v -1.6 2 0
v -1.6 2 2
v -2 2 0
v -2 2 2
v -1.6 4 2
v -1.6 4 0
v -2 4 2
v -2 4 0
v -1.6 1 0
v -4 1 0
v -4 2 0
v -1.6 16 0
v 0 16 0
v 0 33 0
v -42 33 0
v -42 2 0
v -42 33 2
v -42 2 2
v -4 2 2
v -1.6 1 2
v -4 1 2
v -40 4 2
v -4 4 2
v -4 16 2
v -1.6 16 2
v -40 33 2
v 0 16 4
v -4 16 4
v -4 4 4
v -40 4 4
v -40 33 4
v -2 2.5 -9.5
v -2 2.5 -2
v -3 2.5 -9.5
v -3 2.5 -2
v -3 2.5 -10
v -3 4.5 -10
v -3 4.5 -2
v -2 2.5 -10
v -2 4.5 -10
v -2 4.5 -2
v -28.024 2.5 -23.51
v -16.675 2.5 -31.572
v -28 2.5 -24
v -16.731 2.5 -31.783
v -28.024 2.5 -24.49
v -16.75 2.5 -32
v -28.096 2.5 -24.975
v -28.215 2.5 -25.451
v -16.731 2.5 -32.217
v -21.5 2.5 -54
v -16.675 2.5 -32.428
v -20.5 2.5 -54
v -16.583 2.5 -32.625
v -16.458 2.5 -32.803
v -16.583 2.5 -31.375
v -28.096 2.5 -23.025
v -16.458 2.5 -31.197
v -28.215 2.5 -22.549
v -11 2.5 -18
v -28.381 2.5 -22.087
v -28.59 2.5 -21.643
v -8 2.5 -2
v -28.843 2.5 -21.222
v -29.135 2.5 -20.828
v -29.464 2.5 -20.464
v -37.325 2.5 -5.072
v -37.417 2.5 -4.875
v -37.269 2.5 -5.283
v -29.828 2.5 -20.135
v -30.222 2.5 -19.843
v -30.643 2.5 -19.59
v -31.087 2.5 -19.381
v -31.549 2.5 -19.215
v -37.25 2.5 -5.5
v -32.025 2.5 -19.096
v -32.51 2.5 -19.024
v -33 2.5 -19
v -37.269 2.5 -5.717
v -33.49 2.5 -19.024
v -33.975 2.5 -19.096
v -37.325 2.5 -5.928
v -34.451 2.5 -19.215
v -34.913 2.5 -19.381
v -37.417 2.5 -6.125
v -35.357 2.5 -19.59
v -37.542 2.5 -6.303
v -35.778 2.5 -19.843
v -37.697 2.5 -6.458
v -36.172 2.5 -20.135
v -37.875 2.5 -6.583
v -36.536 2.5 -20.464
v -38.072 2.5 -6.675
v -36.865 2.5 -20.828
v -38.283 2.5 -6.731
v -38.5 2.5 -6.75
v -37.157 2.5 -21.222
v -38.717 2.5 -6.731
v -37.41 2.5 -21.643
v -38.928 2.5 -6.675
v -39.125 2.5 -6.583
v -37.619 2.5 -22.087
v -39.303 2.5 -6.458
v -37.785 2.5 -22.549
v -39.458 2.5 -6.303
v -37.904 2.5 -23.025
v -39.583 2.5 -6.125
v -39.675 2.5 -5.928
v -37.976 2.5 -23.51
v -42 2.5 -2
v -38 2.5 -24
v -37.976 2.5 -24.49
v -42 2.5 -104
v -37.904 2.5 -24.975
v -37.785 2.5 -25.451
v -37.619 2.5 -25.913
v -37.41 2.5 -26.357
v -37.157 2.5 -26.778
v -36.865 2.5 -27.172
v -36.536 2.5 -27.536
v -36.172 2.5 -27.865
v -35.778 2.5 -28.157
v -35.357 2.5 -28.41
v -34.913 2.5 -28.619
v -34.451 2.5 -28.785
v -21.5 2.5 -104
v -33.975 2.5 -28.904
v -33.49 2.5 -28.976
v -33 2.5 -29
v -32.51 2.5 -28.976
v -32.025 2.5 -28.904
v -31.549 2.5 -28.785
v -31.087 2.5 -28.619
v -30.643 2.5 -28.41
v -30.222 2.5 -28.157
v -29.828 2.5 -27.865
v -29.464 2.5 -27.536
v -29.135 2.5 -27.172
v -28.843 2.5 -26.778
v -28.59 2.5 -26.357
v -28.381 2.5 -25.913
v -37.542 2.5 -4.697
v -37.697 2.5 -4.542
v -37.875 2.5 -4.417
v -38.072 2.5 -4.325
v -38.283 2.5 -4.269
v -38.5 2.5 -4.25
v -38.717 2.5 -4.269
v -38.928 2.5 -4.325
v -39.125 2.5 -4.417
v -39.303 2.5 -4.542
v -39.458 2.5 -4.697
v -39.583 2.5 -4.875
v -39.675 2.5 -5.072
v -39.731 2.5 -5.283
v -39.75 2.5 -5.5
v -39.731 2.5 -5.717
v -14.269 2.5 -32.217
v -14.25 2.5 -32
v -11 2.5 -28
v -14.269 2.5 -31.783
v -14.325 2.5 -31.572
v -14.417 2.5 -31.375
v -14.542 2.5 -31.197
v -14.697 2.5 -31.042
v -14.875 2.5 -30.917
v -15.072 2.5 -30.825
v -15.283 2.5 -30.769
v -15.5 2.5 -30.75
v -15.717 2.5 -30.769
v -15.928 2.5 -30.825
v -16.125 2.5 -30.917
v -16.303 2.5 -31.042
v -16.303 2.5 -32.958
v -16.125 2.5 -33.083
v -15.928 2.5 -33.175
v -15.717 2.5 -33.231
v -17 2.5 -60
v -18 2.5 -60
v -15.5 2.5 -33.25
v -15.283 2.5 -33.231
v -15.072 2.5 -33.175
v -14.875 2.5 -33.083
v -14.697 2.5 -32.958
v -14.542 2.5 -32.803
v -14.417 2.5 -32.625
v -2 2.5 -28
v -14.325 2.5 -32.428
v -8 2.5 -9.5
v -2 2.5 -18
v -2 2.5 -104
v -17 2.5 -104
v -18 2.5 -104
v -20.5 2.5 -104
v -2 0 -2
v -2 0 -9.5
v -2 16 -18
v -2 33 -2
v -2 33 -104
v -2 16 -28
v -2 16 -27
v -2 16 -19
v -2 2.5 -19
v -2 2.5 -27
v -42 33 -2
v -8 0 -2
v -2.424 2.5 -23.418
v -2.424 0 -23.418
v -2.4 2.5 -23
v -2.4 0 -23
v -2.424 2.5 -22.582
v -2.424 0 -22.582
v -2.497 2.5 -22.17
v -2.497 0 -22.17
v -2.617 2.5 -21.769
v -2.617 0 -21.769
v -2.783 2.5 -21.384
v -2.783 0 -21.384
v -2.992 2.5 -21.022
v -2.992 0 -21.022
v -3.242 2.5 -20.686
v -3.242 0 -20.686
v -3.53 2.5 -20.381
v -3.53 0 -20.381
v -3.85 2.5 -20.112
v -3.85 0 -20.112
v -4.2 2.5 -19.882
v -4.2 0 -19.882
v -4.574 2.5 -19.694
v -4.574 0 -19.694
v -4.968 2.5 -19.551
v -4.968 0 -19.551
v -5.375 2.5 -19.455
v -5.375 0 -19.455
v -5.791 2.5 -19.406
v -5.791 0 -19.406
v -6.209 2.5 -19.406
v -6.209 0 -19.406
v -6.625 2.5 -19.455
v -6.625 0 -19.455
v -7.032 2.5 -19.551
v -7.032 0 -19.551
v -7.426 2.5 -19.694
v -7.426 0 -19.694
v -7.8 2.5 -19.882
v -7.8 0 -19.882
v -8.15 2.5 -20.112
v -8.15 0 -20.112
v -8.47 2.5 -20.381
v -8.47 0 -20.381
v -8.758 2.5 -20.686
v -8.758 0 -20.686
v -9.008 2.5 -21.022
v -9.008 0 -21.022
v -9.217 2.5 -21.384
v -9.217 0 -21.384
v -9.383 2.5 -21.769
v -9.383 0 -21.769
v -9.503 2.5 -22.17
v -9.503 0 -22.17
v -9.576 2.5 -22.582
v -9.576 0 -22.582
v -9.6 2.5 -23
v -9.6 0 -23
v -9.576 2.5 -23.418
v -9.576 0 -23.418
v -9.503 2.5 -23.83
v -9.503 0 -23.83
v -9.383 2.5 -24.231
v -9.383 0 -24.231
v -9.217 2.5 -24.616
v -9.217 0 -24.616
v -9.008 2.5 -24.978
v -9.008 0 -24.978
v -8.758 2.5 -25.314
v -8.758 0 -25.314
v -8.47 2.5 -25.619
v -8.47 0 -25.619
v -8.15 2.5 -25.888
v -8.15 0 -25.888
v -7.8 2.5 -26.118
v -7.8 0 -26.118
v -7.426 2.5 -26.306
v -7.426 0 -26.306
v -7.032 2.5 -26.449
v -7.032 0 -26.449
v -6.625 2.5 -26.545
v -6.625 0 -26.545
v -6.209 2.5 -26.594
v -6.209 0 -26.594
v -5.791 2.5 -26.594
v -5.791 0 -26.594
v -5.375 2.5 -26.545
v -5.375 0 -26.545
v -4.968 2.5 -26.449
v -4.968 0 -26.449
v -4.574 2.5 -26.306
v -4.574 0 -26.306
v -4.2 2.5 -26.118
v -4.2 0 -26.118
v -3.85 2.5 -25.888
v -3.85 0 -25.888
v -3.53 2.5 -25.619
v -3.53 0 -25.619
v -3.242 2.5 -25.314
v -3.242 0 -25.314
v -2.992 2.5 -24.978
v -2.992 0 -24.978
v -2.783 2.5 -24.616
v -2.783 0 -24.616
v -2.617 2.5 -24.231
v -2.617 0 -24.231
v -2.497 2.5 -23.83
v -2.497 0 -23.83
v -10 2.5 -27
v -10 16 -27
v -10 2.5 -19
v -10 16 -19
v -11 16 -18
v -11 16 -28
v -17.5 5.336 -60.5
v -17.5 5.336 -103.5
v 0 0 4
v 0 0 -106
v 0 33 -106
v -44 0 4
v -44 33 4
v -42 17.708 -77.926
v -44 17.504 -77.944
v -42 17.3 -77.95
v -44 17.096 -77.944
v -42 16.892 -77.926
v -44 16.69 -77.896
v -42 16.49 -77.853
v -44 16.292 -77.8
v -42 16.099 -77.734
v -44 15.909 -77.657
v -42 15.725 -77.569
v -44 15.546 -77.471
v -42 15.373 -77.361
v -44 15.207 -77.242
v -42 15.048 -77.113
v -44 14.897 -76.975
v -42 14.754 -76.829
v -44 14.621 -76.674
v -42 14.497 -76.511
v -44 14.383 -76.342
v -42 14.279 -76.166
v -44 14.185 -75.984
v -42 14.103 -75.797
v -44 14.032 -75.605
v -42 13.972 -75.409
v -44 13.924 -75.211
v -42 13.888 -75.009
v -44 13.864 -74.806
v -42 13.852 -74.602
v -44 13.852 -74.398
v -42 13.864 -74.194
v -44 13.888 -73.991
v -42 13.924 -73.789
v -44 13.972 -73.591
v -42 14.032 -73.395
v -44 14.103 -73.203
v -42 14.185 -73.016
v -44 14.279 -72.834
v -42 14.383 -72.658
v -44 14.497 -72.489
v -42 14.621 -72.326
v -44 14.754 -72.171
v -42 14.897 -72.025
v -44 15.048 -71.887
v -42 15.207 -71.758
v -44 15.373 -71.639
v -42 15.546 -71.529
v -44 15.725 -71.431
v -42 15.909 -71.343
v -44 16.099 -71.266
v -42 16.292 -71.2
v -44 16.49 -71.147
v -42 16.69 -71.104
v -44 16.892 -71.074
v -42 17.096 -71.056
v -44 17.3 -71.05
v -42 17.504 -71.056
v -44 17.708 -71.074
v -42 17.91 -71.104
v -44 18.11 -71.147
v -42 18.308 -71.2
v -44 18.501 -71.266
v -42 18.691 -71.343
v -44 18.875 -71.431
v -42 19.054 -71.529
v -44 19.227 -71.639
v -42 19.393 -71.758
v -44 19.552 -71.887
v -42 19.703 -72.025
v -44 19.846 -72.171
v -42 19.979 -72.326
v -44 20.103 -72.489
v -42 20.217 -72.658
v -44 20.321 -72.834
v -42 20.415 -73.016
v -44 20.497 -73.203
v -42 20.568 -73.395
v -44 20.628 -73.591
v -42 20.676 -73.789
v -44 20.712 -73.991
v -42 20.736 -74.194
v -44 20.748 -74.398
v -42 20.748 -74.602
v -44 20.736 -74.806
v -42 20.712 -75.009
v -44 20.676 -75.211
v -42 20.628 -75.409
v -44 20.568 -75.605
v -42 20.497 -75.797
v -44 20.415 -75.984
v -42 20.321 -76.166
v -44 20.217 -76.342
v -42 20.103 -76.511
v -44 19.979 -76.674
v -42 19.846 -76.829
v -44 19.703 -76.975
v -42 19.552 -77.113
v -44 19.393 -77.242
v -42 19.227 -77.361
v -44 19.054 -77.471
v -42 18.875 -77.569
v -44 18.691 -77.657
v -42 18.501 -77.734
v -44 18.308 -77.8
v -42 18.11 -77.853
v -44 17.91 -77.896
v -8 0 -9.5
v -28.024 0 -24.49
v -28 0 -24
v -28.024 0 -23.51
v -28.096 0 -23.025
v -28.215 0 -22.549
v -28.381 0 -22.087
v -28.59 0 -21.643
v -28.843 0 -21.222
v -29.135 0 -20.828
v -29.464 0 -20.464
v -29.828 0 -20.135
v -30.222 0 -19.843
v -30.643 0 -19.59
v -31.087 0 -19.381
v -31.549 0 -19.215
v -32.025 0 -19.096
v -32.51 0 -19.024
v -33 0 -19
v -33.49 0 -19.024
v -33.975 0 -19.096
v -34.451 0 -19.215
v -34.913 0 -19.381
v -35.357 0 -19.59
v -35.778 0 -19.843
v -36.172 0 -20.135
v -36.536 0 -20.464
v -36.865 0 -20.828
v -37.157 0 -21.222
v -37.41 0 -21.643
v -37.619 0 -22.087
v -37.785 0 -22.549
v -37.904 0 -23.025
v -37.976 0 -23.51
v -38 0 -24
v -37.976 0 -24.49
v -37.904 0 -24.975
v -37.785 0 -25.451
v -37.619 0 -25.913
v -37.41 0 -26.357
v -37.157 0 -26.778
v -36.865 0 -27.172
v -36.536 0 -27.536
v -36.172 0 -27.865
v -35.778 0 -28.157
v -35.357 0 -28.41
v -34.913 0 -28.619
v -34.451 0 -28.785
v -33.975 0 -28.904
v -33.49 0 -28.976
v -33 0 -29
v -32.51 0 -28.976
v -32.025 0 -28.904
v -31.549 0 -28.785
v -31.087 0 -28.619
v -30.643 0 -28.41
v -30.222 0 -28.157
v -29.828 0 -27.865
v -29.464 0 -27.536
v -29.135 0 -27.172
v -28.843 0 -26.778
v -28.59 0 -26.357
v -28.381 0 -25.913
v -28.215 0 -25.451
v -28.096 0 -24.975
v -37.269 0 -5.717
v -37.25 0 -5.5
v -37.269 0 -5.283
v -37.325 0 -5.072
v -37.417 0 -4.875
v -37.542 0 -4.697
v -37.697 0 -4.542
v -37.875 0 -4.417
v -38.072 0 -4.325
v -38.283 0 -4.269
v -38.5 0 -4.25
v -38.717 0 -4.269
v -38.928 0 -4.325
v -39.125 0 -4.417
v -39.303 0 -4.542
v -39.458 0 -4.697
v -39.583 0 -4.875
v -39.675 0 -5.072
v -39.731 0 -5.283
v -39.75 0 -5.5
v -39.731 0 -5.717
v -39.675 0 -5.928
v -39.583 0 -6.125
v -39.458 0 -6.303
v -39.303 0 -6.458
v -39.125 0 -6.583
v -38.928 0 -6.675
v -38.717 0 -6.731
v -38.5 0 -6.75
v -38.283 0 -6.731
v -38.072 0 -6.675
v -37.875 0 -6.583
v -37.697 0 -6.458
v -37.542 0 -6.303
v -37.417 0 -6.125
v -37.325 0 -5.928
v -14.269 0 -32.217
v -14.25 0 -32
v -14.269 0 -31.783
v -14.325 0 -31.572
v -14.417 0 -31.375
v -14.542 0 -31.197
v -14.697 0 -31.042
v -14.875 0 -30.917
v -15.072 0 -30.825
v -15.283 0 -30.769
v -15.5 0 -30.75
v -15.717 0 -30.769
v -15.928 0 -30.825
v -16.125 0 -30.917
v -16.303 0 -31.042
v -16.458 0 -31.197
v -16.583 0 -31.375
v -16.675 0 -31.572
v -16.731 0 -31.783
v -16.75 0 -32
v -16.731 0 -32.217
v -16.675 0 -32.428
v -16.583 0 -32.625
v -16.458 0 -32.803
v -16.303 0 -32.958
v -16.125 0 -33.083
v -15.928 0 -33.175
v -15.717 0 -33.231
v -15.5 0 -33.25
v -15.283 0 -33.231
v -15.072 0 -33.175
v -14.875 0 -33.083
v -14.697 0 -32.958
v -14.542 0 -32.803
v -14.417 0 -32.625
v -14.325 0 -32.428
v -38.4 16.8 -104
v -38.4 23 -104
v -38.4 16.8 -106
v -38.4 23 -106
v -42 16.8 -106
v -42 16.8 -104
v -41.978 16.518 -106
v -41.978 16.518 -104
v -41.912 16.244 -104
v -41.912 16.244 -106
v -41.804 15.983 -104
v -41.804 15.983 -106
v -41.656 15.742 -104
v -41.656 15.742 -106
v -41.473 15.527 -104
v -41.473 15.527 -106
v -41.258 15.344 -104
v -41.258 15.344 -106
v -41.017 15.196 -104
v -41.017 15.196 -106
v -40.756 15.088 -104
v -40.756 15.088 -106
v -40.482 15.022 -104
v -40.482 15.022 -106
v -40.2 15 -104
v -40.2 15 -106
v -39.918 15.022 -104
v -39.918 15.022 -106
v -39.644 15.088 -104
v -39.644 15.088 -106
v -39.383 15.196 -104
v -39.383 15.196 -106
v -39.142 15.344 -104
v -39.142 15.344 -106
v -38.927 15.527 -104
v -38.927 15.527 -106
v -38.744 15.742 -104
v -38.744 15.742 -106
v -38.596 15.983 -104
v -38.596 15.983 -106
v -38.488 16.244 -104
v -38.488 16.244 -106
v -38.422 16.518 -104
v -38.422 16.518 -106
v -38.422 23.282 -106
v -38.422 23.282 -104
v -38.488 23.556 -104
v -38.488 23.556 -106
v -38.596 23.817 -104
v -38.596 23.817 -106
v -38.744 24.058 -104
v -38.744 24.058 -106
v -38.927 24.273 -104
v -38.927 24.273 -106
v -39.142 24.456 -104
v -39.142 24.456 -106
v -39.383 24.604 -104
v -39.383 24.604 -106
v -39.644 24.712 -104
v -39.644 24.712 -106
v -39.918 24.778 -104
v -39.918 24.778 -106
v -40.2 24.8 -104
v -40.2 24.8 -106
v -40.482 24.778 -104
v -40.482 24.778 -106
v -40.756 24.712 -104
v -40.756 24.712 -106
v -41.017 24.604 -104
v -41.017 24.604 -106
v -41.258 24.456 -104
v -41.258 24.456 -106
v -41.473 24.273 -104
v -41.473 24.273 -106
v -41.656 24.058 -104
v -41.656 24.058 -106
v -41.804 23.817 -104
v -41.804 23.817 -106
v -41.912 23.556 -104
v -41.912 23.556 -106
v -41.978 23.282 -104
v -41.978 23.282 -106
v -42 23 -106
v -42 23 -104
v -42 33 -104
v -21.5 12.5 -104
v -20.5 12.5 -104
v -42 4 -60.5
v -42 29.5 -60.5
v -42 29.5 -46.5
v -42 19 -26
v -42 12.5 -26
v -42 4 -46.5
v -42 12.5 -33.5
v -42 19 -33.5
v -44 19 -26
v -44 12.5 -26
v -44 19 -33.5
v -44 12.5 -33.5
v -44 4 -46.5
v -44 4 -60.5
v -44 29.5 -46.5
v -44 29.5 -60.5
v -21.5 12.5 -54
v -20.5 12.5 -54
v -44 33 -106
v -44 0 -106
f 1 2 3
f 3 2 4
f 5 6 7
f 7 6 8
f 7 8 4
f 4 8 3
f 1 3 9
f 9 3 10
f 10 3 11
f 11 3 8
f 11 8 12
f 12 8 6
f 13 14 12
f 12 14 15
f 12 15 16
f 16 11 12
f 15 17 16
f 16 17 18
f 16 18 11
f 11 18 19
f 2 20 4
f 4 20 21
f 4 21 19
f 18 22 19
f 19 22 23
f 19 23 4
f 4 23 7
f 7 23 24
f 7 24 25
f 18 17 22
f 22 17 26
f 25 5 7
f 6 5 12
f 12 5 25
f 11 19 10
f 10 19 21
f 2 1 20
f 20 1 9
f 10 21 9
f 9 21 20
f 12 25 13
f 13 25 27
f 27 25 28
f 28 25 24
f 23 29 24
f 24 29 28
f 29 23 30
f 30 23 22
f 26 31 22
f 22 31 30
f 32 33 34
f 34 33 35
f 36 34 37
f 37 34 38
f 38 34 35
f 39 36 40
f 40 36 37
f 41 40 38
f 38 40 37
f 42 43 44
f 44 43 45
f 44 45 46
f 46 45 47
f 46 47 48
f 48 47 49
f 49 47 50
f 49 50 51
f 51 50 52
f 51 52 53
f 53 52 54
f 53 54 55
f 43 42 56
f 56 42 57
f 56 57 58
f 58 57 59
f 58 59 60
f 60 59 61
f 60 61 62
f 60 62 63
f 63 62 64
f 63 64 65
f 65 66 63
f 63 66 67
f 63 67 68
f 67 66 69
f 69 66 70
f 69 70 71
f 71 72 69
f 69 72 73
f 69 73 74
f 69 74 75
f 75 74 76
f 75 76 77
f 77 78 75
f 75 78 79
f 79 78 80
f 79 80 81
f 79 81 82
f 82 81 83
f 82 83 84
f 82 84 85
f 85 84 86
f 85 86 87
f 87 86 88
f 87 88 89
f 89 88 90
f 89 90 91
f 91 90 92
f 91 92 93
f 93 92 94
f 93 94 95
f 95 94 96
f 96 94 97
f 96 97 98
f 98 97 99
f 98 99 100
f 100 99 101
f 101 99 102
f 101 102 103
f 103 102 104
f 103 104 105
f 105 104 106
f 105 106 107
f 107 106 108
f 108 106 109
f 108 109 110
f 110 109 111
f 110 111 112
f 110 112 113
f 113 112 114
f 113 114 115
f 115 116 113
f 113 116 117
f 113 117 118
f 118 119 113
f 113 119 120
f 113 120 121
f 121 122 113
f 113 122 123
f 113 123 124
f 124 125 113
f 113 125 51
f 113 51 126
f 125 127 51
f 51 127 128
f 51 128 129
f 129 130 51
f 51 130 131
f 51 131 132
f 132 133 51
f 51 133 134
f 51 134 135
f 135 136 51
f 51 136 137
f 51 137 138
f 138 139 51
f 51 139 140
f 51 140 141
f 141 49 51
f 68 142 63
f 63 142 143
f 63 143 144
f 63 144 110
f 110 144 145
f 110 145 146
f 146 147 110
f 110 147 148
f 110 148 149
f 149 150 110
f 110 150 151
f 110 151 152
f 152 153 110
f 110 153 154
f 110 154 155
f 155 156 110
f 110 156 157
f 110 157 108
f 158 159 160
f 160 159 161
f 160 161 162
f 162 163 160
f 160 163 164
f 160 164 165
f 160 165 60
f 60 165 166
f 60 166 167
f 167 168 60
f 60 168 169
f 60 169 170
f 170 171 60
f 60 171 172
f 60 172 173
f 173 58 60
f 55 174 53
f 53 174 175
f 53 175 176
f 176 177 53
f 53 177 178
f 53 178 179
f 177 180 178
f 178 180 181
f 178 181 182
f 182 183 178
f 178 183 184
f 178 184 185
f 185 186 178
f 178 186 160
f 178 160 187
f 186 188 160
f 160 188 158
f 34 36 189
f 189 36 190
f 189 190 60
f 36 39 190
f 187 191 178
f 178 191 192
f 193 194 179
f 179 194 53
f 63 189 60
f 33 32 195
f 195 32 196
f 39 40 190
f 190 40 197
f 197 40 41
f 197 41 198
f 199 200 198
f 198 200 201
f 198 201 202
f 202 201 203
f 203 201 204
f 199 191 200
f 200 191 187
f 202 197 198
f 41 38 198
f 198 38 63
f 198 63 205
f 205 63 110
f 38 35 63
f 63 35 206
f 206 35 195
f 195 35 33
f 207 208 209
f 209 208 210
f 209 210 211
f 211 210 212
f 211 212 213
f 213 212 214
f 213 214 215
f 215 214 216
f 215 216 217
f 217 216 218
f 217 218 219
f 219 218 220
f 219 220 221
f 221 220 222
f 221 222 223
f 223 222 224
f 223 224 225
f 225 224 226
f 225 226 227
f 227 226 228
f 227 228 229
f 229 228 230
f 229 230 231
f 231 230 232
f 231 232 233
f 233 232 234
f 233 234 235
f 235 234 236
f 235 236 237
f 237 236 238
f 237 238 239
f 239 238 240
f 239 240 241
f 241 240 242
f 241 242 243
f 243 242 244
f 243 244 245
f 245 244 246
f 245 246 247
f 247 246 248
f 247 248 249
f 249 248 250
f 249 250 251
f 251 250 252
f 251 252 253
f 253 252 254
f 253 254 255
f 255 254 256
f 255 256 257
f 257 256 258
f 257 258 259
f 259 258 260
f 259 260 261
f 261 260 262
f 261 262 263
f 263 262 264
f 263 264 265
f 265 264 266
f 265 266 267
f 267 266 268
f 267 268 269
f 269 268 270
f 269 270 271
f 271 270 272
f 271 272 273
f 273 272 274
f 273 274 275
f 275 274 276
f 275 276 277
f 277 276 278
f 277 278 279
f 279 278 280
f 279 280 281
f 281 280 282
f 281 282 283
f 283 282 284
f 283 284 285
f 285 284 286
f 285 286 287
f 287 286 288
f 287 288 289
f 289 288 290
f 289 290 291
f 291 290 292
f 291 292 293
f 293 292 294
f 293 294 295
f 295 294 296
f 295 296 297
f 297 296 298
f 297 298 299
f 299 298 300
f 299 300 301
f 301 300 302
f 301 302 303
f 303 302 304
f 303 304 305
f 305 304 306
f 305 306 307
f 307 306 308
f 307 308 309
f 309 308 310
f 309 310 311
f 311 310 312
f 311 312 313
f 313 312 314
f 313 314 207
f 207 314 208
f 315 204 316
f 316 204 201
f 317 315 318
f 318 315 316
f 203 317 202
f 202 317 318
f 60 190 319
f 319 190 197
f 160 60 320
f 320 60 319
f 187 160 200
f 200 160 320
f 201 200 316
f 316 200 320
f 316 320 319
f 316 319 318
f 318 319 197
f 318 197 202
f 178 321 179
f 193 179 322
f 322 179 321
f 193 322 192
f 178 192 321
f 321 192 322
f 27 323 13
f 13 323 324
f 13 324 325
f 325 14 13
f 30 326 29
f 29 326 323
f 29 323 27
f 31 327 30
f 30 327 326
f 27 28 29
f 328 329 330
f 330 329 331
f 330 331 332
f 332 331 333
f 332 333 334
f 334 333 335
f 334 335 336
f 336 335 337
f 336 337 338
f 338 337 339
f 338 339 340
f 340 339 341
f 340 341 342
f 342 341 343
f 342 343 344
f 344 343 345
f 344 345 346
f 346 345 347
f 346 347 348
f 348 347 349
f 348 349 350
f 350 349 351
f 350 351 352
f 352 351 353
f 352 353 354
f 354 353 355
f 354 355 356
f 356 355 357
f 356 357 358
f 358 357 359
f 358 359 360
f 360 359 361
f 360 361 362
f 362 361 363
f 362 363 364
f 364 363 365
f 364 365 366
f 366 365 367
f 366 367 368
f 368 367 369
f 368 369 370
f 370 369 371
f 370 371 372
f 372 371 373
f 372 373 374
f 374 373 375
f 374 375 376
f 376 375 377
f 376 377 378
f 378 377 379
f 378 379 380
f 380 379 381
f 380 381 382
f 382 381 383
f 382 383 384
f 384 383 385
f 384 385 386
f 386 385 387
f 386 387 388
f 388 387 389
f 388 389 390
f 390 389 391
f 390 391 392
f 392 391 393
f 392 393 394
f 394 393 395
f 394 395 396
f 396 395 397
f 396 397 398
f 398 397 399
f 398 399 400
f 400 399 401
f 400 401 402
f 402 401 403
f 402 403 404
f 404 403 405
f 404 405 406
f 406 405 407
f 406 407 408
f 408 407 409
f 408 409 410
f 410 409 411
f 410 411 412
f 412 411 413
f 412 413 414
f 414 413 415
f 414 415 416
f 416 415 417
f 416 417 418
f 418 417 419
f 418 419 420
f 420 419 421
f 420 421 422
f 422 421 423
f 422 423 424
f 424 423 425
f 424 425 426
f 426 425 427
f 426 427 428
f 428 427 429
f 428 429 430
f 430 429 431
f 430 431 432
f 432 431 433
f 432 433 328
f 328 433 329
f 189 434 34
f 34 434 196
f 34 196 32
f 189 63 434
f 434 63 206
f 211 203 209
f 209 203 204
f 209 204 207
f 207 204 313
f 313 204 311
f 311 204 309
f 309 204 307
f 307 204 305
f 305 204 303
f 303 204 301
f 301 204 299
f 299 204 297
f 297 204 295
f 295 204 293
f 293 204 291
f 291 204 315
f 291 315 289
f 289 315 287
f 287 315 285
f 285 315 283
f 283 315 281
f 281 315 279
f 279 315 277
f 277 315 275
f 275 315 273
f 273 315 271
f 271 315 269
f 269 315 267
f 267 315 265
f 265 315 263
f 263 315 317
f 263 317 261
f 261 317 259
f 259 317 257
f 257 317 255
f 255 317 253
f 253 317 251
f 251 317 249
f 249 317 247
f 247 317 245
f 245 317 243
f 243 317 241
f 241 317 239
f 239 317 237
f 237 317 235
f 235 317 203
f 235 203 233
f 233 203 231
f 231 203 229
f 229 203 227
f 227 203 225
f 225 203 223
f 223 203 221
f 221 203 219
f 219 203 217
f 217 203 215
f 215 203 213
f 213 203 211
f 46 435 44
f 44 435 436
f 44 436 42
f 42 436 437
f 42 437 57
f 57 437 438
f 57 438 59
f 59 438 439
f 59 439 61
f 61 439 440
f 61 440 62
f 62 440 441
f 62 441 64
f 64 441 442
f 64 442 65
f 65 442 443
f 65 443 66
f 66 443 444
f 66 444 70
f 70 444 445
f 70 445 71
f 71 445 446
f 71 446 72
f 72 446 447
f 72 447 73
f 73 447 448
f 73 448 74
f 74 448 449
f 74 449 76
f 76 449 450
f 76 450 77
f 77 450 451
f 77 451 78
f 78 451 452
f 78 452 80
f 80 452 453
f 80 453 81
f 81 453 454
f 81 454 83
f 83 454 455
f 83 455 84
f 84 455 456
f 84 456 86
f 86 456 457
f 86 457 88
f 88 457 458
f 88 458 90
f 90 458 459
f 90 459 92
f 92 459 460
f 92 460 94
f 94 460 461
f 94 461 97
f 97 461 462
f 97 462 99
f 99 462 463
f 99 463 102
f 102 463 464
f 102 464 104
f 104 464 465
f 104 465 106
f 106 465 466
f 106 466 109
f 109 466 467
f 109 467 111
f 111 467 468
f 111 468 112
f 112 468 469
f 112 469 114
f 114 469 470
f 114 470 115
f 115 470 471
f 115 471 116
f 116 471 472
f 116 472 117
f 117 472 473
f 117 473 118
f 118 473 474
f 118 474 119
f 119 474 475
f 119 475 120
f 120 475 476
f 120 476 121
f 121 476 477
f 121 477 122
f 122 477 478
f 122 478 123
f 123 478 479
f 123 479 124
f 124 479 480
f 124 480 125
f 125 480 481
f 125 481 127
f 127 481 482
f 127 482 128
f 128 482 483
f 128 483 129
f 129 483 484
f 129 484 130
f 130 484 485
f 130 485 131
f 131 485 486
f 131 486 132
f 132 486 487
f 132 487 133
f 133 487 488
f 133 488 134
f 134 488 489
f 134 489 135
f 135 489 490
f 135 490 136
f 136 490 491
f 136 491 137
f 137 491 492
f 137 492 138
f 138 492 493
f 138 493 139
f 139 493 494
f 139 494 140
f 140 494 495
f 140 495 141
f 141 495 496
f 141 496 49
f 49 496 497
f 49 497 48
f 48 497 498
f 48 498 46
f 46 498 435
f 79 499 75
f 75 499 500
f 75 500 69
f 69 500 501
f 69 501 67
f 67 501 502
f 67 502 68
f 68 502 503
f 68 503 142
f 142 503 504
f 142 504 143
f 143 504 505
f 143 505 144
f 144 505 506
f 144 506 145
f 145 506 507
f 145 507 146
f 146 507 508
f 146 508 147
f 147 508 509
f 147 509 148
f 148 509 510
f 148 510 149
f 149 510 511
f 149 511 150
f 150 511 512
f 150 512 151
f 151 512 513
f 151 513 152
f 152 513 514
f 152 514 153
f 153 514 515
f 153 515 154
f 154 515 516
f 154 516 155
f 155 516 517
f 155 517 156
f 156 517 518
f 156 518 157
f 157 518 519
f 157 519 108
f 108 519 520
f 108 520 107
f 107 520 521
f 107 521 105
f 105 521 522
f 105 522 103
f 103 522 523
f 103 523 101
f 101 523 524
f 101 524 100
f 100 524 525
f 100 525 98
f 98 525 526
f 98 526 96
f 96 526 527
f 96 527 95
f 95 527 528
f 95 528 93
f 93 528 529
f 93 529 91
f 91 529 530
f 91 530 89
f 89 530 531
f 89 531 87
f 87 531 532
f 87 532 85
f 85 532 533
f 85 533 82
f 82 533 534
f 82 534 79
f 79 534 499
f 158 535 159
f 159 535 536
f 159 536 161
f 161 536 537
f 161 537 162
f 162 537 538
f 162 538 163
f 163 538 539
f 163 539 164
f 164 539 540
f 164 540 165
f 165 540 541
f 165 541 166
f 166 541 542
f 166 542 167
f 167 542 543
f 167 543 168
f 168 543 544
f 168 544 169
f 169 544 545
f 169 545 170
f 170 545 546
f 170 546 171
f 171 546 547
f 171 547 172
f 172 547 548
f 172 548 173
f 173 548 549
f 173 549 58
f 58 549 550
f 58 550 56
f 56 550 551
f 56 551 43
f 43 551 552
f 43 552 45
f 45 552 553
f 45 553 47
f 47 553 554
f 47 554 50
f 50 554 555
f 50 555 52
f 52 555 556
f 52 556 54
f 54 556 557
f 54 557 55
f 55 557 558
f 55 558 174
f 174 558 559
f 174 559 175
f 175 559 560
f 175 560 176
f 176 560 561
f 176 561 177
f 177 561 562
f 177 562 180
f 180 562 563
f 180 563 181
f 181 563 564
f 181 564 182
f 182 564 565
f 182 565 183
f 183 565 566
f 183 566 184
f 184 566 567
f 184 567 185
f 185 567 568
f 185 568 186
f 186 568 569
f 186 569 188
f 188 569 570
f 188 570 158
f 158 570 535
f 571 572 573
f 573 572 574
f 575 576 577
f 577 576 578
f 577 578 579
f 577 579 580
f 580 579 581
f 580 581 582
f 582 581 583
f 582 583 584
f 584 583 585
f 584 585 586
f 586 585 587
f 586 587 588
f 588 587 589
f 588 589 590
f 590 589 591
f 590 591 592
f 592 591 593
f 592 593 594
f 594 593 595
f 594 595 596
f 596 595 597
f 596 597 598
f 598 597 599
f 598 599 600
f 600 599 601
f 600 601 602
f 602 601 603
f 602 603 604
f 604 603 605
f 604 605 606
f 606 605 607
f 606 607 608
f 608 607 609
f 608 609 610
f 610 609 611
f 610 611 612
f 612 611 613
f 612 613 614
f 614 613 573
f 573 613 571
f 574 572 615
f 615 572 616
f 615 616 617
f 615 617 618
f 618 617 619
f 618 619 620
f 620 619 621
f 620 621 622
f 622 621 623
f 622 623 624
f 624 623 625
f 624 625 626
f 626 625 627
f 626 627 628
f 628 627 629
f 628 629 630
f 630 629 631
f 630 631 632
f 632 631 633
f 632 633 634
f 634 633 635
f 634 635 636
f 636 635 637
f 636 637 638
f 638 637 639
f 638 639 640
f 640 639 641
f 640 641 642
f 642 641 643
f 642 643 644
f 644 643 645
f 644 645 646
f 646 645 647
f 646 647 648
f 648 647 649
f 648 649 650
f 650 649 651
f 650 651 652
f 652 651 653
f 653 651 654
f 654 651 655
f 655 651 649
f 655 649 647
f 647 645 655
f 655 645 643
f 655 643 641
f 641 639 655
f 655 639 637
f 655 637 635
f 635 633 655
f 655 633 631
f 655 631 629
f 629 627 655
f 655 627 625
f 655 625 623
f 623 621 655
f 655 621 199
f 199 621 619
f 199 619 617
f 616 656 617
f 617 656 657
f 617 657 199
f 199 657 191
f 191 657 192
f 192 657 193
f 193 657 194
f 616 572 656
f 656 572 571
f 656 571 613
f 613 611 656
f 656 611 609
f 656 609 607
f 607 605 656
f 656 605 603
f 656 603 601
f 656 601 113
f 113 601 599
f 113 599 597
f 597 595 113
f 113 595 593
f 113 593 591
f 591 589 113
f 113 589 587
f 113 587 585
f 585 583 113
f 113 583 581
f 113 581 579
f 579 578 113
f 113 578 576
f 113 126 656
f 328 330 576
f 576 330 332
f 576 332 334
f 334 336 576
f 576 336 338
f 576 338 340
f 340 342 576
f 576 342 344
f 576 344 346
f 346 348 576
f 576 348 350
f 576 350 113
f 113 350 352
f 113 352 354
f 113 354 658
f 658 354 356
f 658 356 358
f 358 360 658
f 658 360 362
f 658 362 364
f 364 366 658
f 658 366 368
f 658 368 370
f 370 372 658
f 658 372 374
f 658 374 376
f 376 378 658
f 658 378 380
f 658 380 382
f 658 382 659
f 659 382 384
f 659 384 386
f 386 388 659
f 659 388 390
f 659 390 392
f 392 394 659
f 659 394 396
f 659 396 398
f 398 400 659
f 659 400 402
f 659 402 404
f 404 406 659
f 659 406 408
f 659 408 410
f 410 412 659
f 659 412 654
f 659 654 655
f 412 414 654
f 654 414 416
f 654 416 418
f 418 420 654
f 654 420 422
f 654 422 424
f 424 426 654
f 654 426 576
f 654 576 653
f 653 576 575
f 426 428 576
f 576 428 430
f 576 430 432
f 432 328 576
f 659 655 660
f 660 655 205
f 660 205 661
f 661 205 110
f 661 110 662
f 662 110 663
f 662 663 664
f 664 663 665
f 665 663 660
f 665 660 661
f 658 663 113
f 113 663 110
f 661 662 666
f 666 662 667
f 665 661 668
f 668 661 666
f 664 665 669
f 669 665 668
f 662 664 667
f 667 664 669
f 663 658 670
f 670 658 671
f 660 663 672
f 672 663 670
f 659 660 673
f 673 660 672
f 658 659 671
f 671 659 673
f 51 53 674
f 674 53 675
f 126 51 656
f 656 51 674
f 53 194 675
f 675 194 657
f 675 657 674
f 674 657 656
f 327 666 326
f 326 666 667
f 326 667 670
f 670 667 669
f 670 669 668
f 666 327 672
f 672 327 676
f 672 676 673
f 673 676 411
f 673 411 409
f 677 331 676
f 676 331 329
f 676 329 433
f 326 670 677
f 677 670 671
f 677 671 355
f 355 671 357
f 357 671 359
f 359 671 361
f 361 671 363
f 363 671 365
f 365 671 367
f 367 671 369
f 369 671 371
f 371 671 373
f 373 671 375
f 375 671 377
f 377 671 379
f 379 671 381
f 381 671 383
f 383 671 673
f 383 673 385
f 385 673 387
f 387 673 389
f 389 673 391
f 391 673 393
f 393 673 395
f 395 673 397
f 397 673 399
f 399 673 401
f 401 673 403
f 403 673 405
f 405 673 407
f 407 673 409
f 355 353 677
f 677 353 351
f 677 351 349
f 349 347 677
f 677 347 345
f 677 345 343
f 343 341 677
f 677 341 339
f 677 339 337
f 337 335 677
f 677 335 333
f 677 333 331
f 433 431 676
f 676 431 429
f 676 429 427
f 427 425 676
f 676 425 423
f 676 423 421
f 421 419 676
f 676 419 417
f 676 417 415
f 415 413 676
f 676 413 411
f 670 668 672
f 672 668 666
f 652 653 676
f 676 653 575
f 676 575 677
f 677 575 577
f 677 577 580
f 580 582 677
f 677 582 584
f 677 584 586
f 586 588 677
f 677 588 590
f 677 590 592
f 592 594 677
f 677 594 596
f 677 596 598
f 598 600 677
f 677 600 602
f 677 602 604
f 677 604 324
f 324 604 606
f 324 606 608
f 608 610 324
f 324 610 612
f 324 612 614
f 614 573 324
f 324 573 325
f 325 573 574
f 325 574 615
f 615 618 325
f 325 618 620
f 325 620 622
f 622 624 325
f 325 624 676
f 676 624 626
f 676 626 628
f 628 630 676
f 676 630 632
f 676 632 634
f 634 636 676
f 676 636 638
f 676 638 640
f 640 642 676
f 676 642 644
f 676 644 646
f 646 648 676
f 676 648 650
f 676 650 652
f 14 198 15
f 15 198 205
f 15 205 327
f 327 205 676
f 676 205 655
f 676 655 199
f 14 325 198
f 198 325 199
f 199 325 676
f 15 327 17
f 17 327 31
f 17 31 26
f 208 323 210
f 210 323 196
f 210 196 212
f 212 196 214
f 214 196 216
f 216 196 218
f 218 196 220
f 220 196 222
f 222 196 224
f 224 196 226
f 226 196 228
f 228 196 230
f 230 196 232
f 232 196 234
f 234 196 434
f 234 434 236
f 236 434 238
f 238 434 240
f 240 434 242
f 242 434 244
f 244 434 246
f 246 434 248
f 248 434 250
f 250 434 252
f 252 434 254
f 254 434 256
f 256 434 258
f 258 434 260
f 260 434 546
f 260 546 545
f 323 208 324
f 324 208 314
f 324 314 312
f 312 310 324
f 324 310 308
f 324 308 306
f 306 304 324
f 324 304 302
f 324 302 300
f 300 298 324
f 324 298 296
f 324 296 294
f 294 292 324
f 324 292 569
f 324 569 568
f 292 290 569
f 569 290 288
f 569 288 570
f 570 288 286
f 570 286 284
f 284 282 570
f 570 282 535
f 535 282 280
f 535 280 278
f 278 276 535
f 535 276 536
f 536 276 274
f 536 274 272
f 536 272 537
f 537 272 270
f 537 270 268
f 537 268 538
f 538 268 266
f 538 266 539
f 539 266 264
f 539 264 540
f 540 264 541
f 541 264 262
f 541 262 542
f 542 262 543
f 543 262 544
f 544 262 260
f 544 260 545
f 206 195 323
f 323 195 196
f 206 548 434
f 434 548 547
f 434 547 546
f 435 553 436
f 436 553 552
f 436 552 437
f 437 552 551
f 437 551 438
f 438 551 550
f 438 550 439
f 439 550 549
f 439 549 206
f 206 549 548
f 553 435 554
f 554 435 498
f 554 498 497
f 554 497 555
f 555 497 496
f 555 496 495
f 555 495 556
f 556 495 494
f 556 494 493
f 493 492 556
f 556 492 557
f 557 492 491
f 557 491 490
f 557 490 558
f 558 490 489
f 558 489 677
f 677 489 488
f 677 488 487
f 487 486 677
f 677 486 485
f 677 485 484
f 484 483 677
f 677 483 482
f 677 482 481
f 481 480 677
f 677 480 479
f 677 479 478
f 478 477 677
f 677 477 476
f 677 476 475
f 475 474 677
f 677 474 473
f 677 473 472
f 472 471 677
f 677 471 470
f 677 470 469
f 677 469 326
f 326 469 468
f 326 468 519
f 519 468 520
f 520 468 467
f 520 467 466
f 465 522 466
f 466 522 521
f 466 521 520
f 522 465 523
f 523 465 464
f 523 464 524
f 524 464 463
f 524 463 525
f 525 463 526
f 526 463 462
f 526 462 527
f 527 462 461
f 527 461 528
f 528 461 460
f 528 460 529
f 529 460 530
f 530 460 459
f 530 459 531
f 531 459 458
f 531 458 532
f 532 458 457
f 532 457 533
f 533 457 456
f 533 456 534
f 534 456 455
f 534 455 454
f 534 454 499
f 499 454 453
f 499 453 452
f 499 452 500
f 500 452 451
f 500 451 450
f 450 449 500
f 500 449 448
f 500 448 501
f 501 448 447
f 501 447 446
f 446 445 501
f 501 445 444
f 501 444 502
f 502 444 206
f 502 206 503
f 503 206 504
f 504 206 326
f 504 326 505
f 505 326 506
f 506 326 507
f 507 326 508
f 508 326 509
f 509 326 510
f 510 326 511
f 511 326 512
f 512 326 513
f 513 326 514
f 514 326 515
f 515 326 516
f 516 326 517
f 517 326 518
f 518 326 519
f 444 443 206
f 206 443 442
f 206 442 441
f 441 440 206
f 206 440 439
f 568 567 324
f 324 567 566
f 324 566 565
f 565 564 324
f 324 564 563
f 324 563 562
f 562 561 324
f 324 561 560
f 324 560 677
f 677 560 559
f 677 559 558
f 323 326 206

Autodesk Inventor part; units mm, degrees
ref_plane "YZ Plane" through (0, 0, 0) normal (1, 0, 0) x (0, 1, 0)
ref_plane "XZ Plane" through (0, 0, 0) normal (0, 1, 0) x (-1, 0, 0)
ref_plane "XY Plane" through (0, 0, 0) normal (0, 0, 1) x (1, 0, 0)
sketch "внешние размеры" plane through (0, 0, 0) normal (0, 1, 0) x (-1, 0, 0)
  line L0 (0, 0) -> (44, 0)
  line L1 (44, 0) -> (44, -106)
  line L2 (44, -106) -> (0, -106)
  line L3 (0, -106) -> (0, 0)
  dimension "d0" = 44
  dimension "d1" = 106
extrude "Выдавливание1" add sketch "внешние размеры" along normal blind 33
sketch "внутренние размеры" plane through (0, 33, 0) normal (0, 1, 0) x (1, 0, 0)
  line L0 (-42, 2) -> (-2, 2)
  line L1 (-2, 2) -> (-2, 104)
  line L2 (-2, 104) -> (-42, 104)
  line L3 (-42, 104) -> (-42, 2)
  point P0 (0, 0)
extrude "Выдавливание2" cut sketch "внутренние размеры" against normal blind 30.5
sketch "перегородка" plane through (0, 2.5, 0) normal (0, 1, 0) x (1, 0, 0)
  line L0 (-42, 104) -> (-2, 104)
  line L1 (-20.5, 104) -> (-21.5, 104)
  line L2 (-21.5, 104) -> (-21.5, 54)
  line L3 (-21.5, 54) -> (-20.5, 54)
  line L4 (-20.5, 54) -> (-20.5, 104)
  line L5 (-2, 104) -> (-2, 2)
  line L6 (-42, 104) -> (-2, 104)
  point P0 (0, 0)
  point P1 (-22, 104)
  point P2 (-21, 54)
  dimension "d6" = 18.5
  dimension "d7" = 1
  dimension "d8" = 50
extrude "Выдавливание3" add sketch "перегородка" along normal blind 10
sketch "дисплей" plane through (-44, 0, -106) normal (-1, 0, 0) x (0, 0, 1)
  line L0 (45.5, 4) -> (59.5, 4)
  line L1 (59.5, 4) -> (59.5, 29.5)
  line L2 (59.5, 29.5) -> (45.5, 29.5)
  line L3 (45.5, 29.5) -> (45.5, 4)
  line L4 (0, 0) -> (0, 33)
  line L5 (0, 0) -> (106, 0)
  line L6 (0, 33) -> (106, 33)
  point P0 (0, 16.5)
  point P1 (59.5, 16.75)
  dimension "d21" = 25.5
  dimension "d22" = 14
  dimension "d23" = 45.5
  dimension "d24" = 4
  dimension "d25" = 3.5
  dimension "d125" = 59.5
extrude "Выдавливание4" cut sketch "дисплей" against normal blind 2.5
sketch "уф" plane through (-44, 0, -106) normal (-1, 0, 0) x (0, 0, 1)
  line L0 (80, 12.5) -> (72.5, 12.5)
  line L1 (72.5, 12.5) -> (72.5, 19)
  line L2 (72.5, 19) -> (80, 19)
  line L3 (80, 19) -> (80, 12.5)
  line L4 (106, 0) -> (106, 33)
  line L5 (0, 0) -> (106, 0)
  line L6 (0, 33) -> (106, 33)
  line L7 (0, 0) -> (0, 33)
  point P0 (80, 15.75)
  point P1 (72.5, 15.75)
  point P2 (0, 16.5)
  dimension "d28" = 7.5
  dimension "d29" = 6.5
  dimension "d30" = 26
  dimension "d31" = 12.5
  dimension "d32" = 14
  dimension "d126" = 72.5
extrude "Выдавливание5" cut sketch "уф" against normal blind 2.5 contours L0 L1 L2 L3
sketch "usb-c" plane through (0, 0, -106) normal (0, 0, -1) x (-1, 0, 0)
  line L0 (40.2, 24.8) -> (40.2, 15) construction
  line L1 (42, 4) -> (42, 29.5)
  line L2 (42, 23) -> (42, 16.8)
  line L3 (38.4, 16.8) -> (38.4, 23)
  arc A0 (42, 23) -> (38.4, 23) centre (40.2, 23) ccw
  arc A1 (38.4, 16.8) -> (42, 16.8) centre (40.2, 16.8) ccw
  line L4 (44, 0) -> (44, 33)
  line L5 (0, 0) -> (44, 0)
  point P0 (40.2, 19.9)
  point P1 (42, 19.9)
  point P2 (38.4, 19.9)
  point P3 (42, 16.8)
  point P4 (42, 23)
  dimension "d35" = 2
  dimension "d36" = 15
  dimension "d37" = 9.8
  dimension "d38" = 3.6
extrude "Выдавливание6" cut sketch "usb-c" against normal blind 2.5
sketch "stepper уши" plane through (0, 2.5, 0) normal (0, 1, 0) x (1, 0, 0)
  line L0 (-42, 2) -> (-42, 104)
  line L1 (-2, 2) -> (-42, 2)
  point P0 (0, 0)
  point P1 (-38.5, 5.5)
  point P2 (-15.5, 32)
  point P3 (-33, 24)
  point P4 (-33, 24)
  dimension "d41" = 3.5
  dimension "d42" = 3.5
  dimension "d43" = 26.5
  dimension "d44" = 30
  dimension "d45" = 35.0892
  dimension "d46" = 22
  dimension "d47" = 9
  dimension "d48" = 19.2419
  dimension "d49" = 19.3003
hole "Отверстие2" at (-33, 2.5, -24) at (-15.5, 2.5, -32) at (-38.5, 2.5, -5.5) at (-33, 2.5, -24) direction (0, -1, 0) diameter 2.5 depth 2.5 tip angle 118
sketch "stepper ось" plane through (0, 2.5, 0) normal (0, 1, 0) x (1, 0, 0)
  circle A0 centre (-33, 24) radius 1.25
  line L0 (-44, 0) -> (0, 0)
  line L1 (0, 0) -> (0, 106)
  dimension "d127" = 24
  dimension "d128" = 33
hole "Отверстие3" at (-33, 2.5, -24) direction (0, -1, 0) diameter 10 depth 2.5 tip angle 118
sketch "solar" plane through (0, 2.5, 0) normal (0, 1, 0) x (1, 0, 0)
  line L0 (-2, 104) -> (-2, 2)
  line L1 (-2, 2) -> (-8, 2)
  line L2 (-8, 2) -> (-8, 9.5)
  line L3 (-8, 9.5) -> (-2, 9.5)
  line L4 (-2, 9.5) -> (-2, 2)
  point P0 (0, 0)
  point P1 (-5, 2)
  point P2 (-5, 9.5)
  point P3 (-2, 9.5)
  dimension "d64" = 6
  dimension "d65" = 7.5
extrude "Выдавливание7" cut sketch "solar" against normal blind 2.5
sketch "кнопка" plane through (-44, 0, -106) normal (-1, 0, 0) x (0, 0, 1)
  line L0 (0, 0) -> (106, 0)
  line L1 (0, 0) -> (0, 33)
  point P0 (31.5, 17.3)
  dimension "d116" = 17.3
  dimension "d117" = 31.5
hole "Отверстие7" at (-44, 17.3, -74.5) direction (1, 0, 0) diameter 6.9 depth 2.5 tip angle 118
sketch "Эскиз25" plane through (-44, 0, -106) normal (-1, 0, 0) x (0, 0, 1)
  line L0 (106, 0) -> (106, 33)
  line L1 (106, 33) -> (110, 33)
  line L2 (110, 33) -> (110, 0)
  line L3 (110, 0) -> (106, 0)
  line L4 (106, 0) -> (106, 33)
extrude "Выдавливание12" add sketch "Эскиз25" against normal blind 44
sketch "паз" plane through (-44, 0, -106) normal (-1, 0, 0) x (0, 0, 1)
  line L0 (106, 33) -> (108, 33)
  line L1 (108, 33) -> (108, 2)
  line L2 (108, 2) -> (106, 2)
  line L3 (106, 2) -> (106, 33)
  line L4 (110, 33) -> (110, 0)
  line L5 (108, 33) -> (110, 33)
  line L6 (110, 33) -> (110, 4)
  line L7 (110, 4) -> (108, 4)
  line L8 (108, 4) -> (108, 33)
  point P0 (106, 0)
  point P1 (107, 2)
  point P2 (107, 33)
  point P3 (109, 4)
  point P4 (109, 33)
  dimension "d133" = 31
  dimension "d134" = 29
  dimension "d135" = 2
extrude "Выдавливание13" cut sketch "паз" against normal blind 44
sketch "Эскиз27" plane through (0, 2.5, 0) normal (0, 1, 0) x (1, 0, 0)
  line L0 (-42, 104) -> (-2, 104)
  line L1 (-18, 60) -> (-17, 60)
  line L2 (-17, 60) -> (-17, 104)
  line L3 (-17, 104) -> (-18, 104)
  line L4 (-18, 104) -> (-18, 60)
  point P0 (0, 0)
extrude "Выдавливание14" add sketch "Эскиз27" along normal blind 3 draft -10
sketch "Эскиз28" plane through (0, 2.5, 0) normal (0, 1, 0) x (1, 0, 0)
  line L0 (-2, 104) -> (-2, 2)
  line L1 (-2, 18) -> (-10, 18)
  line L2 (-10, 18) -> (-10, 19)
  line L3 (-10, 19) -> (-2, 19)
  line L4 (-2, 19) -> (-2, 18)
  line L5 (-2, 104) -> (-2, 9.5)
  line L6 (-2, 27) -> (-10, 27)
  line L7 (-10, 27) -> (-10, 28)
  line L8 (-10, 28) -> (-2, 28)
  line L9 (-2, 28) -> (-2, 27)
  line L10 (-10, 28) -> (-11, 28)
  line L11 (-11, 28) -> (-11, 18)
  line L12 (-11, 18) -> (-10, 18)
  line L13 (-10, 18) -> (-10, 28)
  point P0 (0, 0)
  point P1 (-2, 19)
extrude "Выдавливание15" add sketch "Эскиз28" along normal blind 13.5 contours L0 L6 L7 L8 | L7 L13 L2 L12 L11 L10 | L0 L1 L2 L3
sketch "кнопка2" plane through (0, 2.5, 0) normal (0, 1, 0) x (1, 0, 0)
  circle A0 centre (-6, 23) radius 3.6
  line L0 (0, -4) -> (0, 106)
  line L1 (-2, 19) -> (-10, 19)
  point P0 (0, 0)
  dimension "d147" = 7.2
  dimension "d172" = 6
  dimension "d173" = 4
hole "Отверстие9" at (-6, 2.5, -23) direction (0, -1, 0) diameter 7.2 depth 2.5 tip angle 118
sketch "Эскиз31" plane through (0, 2.5, 0) normal (0, 1, 0) x (1, 0, 0)
  line L0 (-2, 104) -> (-2, 2)
  line L1 (-2, 2) -> (-42, 2)
  line L2 (-2, 10) -> (-3, 10)
  line L3 (-3, 10) -> (-3, 2)
  line L4 (-3, 2) -> (-2, 2)
  line L5 (-2, 2) -> (-2, 10)
  point P0 (0, 0)
extrude "Выдавливание16" add sketch "Эскиз31" along normal blind 2
sketch "Эскиз32" plane through (-44, 4, 4) normal (0, 1, 0) x (1, 0, 0)
  line L0 (0, 0) -> (44, 0)
  line L1 (44, 4) -> (40, 4)
  line L2 (40, 0) -> (44, 0)
  line L3 (44, 0) -> (44, 4)
  line L4 (0, 110) -> (0, 0)
  line L5 (0, 4) -> (44, 4)
  line L6 (0, 0) -> (4, 0)
  line L7 (4, 0) -> (4, 4)
  line L8 (4, 4) -> (0, 4)
  line L9 (0, 4) -> (0, 0)
  point P0 (4, 0)
extrude "Выдавливание17" add sketch "Эскиз32" along normal blind 29 contours L4 L5 L7 L0
sketch "Эскиз33" plane through (0, 4, 4) normal (0, 1, 0) x (1, 0, 0)
  line L0 (0, 4) -> (-4, 4)
  line L1 (-4, 4) -> (-4, 0)
  line L2 (-4, 0) -> (0, 0)
  line L3 (0, 0) -> (0, 4)
extrude "Выдавливание18" add sketch "Эскиз33" along normal blind 12
sketch "Эскиз34" plane through (0, 16, 4) normal (0, 1, 0) x (1, 0, 0)
  line L0 (-44, 2) -> (0, 2)
  line L1 (-40, 4) -> (0, 4)
  line L2 (-1.6, 2) -> (-4, 2)
  line L3 (-4, 2) -> (-4, 4)
  line L4 (-4, 4) -> (-1.6, 4)
  line L5 (-1.6, 4) -> (-1.6, 2)
  line L6 (-40, 2) -> (-42, 2)
  line L7 (-42, 2) -> (-42, 4)
  line L8 (-42, 4) -> (-40, 4)
  line L9 (-40, 4) -> (-40, 2)
  point P0 (-1.6, 4)
  point P1 (-4, 2)
  point P2 (-1.6, 3)
  point P3 (-4, 3)
  point P4 (-2.8, 2)
  point P5 (-2.8, 4)
  dimension "d169" = 2.4
  dimension "d170" = 2
extrude "Выдавливание19" cut sketch "Эскиз34" against normal blind 15 contours L3 L1 L5 L0
sketch "Эскиз35" plane through (0, 33, 0) normal (0, 1, 0) x (1, 0, 0)
  line L0 (-40, -2) -> (-4, -2)
  line L1 (-40, 0) -> (-44, 0)
  line L2 (-40, -2) -> (-42, -2)
  line L3 (-42, -2) -> (-42, 0)
  line L4 (-42, 0) -> (-40, 0)
  line L5 (-40, 0) -> (-40, -2)
  point P0 (0, 0)
  point P1 (-40, -1)
  point P2 (-42, -1)
  dimension "d171" = 2
extrude "Выдавливание20" cut sketch "Эскиз35" against normal blind 31
sketch "Эскиз36" plane through (-44, 0, -106) normal (-1, 0, 0) x (0, 0, 1)
  line L0 (108, 33) -> (108, 4)
  line L1 (106, 2) -> (108, 2)
  line L2 (108, 4) -> (106, 4)
  line L3 (106, 4) -> (106, 2)
  line L4 (106, 2) -> (108, 2)
  line L5 (108, 2) -> (108, 4)
  point P0 (106, 0)
extrude "Выдавливание21" add sketch "Эскиз36" against normal blind 2
sketch "Эскиз37" plane through (0, 0, -106) normal (1, 0, 0) x (0, 0, -1)
  line L0 (-108, 2) -> (-108, 4)
  line L1 (-106, 4) -> (-106, 2)
  line L2 (-108, 4) -> (-106, 4)
  line L3 (-106, 4) -> (-106, 2)
  line L4 (-106, 2) -> (-108, 2)
  line L5 (-108, 2) -> (-108, 4)
  point P0 (-106, 0)
extrude "Выдавливание22" add sketch "Эскиз37" against normal blind 2
properties part number "roller_box_new03_10_2025"
